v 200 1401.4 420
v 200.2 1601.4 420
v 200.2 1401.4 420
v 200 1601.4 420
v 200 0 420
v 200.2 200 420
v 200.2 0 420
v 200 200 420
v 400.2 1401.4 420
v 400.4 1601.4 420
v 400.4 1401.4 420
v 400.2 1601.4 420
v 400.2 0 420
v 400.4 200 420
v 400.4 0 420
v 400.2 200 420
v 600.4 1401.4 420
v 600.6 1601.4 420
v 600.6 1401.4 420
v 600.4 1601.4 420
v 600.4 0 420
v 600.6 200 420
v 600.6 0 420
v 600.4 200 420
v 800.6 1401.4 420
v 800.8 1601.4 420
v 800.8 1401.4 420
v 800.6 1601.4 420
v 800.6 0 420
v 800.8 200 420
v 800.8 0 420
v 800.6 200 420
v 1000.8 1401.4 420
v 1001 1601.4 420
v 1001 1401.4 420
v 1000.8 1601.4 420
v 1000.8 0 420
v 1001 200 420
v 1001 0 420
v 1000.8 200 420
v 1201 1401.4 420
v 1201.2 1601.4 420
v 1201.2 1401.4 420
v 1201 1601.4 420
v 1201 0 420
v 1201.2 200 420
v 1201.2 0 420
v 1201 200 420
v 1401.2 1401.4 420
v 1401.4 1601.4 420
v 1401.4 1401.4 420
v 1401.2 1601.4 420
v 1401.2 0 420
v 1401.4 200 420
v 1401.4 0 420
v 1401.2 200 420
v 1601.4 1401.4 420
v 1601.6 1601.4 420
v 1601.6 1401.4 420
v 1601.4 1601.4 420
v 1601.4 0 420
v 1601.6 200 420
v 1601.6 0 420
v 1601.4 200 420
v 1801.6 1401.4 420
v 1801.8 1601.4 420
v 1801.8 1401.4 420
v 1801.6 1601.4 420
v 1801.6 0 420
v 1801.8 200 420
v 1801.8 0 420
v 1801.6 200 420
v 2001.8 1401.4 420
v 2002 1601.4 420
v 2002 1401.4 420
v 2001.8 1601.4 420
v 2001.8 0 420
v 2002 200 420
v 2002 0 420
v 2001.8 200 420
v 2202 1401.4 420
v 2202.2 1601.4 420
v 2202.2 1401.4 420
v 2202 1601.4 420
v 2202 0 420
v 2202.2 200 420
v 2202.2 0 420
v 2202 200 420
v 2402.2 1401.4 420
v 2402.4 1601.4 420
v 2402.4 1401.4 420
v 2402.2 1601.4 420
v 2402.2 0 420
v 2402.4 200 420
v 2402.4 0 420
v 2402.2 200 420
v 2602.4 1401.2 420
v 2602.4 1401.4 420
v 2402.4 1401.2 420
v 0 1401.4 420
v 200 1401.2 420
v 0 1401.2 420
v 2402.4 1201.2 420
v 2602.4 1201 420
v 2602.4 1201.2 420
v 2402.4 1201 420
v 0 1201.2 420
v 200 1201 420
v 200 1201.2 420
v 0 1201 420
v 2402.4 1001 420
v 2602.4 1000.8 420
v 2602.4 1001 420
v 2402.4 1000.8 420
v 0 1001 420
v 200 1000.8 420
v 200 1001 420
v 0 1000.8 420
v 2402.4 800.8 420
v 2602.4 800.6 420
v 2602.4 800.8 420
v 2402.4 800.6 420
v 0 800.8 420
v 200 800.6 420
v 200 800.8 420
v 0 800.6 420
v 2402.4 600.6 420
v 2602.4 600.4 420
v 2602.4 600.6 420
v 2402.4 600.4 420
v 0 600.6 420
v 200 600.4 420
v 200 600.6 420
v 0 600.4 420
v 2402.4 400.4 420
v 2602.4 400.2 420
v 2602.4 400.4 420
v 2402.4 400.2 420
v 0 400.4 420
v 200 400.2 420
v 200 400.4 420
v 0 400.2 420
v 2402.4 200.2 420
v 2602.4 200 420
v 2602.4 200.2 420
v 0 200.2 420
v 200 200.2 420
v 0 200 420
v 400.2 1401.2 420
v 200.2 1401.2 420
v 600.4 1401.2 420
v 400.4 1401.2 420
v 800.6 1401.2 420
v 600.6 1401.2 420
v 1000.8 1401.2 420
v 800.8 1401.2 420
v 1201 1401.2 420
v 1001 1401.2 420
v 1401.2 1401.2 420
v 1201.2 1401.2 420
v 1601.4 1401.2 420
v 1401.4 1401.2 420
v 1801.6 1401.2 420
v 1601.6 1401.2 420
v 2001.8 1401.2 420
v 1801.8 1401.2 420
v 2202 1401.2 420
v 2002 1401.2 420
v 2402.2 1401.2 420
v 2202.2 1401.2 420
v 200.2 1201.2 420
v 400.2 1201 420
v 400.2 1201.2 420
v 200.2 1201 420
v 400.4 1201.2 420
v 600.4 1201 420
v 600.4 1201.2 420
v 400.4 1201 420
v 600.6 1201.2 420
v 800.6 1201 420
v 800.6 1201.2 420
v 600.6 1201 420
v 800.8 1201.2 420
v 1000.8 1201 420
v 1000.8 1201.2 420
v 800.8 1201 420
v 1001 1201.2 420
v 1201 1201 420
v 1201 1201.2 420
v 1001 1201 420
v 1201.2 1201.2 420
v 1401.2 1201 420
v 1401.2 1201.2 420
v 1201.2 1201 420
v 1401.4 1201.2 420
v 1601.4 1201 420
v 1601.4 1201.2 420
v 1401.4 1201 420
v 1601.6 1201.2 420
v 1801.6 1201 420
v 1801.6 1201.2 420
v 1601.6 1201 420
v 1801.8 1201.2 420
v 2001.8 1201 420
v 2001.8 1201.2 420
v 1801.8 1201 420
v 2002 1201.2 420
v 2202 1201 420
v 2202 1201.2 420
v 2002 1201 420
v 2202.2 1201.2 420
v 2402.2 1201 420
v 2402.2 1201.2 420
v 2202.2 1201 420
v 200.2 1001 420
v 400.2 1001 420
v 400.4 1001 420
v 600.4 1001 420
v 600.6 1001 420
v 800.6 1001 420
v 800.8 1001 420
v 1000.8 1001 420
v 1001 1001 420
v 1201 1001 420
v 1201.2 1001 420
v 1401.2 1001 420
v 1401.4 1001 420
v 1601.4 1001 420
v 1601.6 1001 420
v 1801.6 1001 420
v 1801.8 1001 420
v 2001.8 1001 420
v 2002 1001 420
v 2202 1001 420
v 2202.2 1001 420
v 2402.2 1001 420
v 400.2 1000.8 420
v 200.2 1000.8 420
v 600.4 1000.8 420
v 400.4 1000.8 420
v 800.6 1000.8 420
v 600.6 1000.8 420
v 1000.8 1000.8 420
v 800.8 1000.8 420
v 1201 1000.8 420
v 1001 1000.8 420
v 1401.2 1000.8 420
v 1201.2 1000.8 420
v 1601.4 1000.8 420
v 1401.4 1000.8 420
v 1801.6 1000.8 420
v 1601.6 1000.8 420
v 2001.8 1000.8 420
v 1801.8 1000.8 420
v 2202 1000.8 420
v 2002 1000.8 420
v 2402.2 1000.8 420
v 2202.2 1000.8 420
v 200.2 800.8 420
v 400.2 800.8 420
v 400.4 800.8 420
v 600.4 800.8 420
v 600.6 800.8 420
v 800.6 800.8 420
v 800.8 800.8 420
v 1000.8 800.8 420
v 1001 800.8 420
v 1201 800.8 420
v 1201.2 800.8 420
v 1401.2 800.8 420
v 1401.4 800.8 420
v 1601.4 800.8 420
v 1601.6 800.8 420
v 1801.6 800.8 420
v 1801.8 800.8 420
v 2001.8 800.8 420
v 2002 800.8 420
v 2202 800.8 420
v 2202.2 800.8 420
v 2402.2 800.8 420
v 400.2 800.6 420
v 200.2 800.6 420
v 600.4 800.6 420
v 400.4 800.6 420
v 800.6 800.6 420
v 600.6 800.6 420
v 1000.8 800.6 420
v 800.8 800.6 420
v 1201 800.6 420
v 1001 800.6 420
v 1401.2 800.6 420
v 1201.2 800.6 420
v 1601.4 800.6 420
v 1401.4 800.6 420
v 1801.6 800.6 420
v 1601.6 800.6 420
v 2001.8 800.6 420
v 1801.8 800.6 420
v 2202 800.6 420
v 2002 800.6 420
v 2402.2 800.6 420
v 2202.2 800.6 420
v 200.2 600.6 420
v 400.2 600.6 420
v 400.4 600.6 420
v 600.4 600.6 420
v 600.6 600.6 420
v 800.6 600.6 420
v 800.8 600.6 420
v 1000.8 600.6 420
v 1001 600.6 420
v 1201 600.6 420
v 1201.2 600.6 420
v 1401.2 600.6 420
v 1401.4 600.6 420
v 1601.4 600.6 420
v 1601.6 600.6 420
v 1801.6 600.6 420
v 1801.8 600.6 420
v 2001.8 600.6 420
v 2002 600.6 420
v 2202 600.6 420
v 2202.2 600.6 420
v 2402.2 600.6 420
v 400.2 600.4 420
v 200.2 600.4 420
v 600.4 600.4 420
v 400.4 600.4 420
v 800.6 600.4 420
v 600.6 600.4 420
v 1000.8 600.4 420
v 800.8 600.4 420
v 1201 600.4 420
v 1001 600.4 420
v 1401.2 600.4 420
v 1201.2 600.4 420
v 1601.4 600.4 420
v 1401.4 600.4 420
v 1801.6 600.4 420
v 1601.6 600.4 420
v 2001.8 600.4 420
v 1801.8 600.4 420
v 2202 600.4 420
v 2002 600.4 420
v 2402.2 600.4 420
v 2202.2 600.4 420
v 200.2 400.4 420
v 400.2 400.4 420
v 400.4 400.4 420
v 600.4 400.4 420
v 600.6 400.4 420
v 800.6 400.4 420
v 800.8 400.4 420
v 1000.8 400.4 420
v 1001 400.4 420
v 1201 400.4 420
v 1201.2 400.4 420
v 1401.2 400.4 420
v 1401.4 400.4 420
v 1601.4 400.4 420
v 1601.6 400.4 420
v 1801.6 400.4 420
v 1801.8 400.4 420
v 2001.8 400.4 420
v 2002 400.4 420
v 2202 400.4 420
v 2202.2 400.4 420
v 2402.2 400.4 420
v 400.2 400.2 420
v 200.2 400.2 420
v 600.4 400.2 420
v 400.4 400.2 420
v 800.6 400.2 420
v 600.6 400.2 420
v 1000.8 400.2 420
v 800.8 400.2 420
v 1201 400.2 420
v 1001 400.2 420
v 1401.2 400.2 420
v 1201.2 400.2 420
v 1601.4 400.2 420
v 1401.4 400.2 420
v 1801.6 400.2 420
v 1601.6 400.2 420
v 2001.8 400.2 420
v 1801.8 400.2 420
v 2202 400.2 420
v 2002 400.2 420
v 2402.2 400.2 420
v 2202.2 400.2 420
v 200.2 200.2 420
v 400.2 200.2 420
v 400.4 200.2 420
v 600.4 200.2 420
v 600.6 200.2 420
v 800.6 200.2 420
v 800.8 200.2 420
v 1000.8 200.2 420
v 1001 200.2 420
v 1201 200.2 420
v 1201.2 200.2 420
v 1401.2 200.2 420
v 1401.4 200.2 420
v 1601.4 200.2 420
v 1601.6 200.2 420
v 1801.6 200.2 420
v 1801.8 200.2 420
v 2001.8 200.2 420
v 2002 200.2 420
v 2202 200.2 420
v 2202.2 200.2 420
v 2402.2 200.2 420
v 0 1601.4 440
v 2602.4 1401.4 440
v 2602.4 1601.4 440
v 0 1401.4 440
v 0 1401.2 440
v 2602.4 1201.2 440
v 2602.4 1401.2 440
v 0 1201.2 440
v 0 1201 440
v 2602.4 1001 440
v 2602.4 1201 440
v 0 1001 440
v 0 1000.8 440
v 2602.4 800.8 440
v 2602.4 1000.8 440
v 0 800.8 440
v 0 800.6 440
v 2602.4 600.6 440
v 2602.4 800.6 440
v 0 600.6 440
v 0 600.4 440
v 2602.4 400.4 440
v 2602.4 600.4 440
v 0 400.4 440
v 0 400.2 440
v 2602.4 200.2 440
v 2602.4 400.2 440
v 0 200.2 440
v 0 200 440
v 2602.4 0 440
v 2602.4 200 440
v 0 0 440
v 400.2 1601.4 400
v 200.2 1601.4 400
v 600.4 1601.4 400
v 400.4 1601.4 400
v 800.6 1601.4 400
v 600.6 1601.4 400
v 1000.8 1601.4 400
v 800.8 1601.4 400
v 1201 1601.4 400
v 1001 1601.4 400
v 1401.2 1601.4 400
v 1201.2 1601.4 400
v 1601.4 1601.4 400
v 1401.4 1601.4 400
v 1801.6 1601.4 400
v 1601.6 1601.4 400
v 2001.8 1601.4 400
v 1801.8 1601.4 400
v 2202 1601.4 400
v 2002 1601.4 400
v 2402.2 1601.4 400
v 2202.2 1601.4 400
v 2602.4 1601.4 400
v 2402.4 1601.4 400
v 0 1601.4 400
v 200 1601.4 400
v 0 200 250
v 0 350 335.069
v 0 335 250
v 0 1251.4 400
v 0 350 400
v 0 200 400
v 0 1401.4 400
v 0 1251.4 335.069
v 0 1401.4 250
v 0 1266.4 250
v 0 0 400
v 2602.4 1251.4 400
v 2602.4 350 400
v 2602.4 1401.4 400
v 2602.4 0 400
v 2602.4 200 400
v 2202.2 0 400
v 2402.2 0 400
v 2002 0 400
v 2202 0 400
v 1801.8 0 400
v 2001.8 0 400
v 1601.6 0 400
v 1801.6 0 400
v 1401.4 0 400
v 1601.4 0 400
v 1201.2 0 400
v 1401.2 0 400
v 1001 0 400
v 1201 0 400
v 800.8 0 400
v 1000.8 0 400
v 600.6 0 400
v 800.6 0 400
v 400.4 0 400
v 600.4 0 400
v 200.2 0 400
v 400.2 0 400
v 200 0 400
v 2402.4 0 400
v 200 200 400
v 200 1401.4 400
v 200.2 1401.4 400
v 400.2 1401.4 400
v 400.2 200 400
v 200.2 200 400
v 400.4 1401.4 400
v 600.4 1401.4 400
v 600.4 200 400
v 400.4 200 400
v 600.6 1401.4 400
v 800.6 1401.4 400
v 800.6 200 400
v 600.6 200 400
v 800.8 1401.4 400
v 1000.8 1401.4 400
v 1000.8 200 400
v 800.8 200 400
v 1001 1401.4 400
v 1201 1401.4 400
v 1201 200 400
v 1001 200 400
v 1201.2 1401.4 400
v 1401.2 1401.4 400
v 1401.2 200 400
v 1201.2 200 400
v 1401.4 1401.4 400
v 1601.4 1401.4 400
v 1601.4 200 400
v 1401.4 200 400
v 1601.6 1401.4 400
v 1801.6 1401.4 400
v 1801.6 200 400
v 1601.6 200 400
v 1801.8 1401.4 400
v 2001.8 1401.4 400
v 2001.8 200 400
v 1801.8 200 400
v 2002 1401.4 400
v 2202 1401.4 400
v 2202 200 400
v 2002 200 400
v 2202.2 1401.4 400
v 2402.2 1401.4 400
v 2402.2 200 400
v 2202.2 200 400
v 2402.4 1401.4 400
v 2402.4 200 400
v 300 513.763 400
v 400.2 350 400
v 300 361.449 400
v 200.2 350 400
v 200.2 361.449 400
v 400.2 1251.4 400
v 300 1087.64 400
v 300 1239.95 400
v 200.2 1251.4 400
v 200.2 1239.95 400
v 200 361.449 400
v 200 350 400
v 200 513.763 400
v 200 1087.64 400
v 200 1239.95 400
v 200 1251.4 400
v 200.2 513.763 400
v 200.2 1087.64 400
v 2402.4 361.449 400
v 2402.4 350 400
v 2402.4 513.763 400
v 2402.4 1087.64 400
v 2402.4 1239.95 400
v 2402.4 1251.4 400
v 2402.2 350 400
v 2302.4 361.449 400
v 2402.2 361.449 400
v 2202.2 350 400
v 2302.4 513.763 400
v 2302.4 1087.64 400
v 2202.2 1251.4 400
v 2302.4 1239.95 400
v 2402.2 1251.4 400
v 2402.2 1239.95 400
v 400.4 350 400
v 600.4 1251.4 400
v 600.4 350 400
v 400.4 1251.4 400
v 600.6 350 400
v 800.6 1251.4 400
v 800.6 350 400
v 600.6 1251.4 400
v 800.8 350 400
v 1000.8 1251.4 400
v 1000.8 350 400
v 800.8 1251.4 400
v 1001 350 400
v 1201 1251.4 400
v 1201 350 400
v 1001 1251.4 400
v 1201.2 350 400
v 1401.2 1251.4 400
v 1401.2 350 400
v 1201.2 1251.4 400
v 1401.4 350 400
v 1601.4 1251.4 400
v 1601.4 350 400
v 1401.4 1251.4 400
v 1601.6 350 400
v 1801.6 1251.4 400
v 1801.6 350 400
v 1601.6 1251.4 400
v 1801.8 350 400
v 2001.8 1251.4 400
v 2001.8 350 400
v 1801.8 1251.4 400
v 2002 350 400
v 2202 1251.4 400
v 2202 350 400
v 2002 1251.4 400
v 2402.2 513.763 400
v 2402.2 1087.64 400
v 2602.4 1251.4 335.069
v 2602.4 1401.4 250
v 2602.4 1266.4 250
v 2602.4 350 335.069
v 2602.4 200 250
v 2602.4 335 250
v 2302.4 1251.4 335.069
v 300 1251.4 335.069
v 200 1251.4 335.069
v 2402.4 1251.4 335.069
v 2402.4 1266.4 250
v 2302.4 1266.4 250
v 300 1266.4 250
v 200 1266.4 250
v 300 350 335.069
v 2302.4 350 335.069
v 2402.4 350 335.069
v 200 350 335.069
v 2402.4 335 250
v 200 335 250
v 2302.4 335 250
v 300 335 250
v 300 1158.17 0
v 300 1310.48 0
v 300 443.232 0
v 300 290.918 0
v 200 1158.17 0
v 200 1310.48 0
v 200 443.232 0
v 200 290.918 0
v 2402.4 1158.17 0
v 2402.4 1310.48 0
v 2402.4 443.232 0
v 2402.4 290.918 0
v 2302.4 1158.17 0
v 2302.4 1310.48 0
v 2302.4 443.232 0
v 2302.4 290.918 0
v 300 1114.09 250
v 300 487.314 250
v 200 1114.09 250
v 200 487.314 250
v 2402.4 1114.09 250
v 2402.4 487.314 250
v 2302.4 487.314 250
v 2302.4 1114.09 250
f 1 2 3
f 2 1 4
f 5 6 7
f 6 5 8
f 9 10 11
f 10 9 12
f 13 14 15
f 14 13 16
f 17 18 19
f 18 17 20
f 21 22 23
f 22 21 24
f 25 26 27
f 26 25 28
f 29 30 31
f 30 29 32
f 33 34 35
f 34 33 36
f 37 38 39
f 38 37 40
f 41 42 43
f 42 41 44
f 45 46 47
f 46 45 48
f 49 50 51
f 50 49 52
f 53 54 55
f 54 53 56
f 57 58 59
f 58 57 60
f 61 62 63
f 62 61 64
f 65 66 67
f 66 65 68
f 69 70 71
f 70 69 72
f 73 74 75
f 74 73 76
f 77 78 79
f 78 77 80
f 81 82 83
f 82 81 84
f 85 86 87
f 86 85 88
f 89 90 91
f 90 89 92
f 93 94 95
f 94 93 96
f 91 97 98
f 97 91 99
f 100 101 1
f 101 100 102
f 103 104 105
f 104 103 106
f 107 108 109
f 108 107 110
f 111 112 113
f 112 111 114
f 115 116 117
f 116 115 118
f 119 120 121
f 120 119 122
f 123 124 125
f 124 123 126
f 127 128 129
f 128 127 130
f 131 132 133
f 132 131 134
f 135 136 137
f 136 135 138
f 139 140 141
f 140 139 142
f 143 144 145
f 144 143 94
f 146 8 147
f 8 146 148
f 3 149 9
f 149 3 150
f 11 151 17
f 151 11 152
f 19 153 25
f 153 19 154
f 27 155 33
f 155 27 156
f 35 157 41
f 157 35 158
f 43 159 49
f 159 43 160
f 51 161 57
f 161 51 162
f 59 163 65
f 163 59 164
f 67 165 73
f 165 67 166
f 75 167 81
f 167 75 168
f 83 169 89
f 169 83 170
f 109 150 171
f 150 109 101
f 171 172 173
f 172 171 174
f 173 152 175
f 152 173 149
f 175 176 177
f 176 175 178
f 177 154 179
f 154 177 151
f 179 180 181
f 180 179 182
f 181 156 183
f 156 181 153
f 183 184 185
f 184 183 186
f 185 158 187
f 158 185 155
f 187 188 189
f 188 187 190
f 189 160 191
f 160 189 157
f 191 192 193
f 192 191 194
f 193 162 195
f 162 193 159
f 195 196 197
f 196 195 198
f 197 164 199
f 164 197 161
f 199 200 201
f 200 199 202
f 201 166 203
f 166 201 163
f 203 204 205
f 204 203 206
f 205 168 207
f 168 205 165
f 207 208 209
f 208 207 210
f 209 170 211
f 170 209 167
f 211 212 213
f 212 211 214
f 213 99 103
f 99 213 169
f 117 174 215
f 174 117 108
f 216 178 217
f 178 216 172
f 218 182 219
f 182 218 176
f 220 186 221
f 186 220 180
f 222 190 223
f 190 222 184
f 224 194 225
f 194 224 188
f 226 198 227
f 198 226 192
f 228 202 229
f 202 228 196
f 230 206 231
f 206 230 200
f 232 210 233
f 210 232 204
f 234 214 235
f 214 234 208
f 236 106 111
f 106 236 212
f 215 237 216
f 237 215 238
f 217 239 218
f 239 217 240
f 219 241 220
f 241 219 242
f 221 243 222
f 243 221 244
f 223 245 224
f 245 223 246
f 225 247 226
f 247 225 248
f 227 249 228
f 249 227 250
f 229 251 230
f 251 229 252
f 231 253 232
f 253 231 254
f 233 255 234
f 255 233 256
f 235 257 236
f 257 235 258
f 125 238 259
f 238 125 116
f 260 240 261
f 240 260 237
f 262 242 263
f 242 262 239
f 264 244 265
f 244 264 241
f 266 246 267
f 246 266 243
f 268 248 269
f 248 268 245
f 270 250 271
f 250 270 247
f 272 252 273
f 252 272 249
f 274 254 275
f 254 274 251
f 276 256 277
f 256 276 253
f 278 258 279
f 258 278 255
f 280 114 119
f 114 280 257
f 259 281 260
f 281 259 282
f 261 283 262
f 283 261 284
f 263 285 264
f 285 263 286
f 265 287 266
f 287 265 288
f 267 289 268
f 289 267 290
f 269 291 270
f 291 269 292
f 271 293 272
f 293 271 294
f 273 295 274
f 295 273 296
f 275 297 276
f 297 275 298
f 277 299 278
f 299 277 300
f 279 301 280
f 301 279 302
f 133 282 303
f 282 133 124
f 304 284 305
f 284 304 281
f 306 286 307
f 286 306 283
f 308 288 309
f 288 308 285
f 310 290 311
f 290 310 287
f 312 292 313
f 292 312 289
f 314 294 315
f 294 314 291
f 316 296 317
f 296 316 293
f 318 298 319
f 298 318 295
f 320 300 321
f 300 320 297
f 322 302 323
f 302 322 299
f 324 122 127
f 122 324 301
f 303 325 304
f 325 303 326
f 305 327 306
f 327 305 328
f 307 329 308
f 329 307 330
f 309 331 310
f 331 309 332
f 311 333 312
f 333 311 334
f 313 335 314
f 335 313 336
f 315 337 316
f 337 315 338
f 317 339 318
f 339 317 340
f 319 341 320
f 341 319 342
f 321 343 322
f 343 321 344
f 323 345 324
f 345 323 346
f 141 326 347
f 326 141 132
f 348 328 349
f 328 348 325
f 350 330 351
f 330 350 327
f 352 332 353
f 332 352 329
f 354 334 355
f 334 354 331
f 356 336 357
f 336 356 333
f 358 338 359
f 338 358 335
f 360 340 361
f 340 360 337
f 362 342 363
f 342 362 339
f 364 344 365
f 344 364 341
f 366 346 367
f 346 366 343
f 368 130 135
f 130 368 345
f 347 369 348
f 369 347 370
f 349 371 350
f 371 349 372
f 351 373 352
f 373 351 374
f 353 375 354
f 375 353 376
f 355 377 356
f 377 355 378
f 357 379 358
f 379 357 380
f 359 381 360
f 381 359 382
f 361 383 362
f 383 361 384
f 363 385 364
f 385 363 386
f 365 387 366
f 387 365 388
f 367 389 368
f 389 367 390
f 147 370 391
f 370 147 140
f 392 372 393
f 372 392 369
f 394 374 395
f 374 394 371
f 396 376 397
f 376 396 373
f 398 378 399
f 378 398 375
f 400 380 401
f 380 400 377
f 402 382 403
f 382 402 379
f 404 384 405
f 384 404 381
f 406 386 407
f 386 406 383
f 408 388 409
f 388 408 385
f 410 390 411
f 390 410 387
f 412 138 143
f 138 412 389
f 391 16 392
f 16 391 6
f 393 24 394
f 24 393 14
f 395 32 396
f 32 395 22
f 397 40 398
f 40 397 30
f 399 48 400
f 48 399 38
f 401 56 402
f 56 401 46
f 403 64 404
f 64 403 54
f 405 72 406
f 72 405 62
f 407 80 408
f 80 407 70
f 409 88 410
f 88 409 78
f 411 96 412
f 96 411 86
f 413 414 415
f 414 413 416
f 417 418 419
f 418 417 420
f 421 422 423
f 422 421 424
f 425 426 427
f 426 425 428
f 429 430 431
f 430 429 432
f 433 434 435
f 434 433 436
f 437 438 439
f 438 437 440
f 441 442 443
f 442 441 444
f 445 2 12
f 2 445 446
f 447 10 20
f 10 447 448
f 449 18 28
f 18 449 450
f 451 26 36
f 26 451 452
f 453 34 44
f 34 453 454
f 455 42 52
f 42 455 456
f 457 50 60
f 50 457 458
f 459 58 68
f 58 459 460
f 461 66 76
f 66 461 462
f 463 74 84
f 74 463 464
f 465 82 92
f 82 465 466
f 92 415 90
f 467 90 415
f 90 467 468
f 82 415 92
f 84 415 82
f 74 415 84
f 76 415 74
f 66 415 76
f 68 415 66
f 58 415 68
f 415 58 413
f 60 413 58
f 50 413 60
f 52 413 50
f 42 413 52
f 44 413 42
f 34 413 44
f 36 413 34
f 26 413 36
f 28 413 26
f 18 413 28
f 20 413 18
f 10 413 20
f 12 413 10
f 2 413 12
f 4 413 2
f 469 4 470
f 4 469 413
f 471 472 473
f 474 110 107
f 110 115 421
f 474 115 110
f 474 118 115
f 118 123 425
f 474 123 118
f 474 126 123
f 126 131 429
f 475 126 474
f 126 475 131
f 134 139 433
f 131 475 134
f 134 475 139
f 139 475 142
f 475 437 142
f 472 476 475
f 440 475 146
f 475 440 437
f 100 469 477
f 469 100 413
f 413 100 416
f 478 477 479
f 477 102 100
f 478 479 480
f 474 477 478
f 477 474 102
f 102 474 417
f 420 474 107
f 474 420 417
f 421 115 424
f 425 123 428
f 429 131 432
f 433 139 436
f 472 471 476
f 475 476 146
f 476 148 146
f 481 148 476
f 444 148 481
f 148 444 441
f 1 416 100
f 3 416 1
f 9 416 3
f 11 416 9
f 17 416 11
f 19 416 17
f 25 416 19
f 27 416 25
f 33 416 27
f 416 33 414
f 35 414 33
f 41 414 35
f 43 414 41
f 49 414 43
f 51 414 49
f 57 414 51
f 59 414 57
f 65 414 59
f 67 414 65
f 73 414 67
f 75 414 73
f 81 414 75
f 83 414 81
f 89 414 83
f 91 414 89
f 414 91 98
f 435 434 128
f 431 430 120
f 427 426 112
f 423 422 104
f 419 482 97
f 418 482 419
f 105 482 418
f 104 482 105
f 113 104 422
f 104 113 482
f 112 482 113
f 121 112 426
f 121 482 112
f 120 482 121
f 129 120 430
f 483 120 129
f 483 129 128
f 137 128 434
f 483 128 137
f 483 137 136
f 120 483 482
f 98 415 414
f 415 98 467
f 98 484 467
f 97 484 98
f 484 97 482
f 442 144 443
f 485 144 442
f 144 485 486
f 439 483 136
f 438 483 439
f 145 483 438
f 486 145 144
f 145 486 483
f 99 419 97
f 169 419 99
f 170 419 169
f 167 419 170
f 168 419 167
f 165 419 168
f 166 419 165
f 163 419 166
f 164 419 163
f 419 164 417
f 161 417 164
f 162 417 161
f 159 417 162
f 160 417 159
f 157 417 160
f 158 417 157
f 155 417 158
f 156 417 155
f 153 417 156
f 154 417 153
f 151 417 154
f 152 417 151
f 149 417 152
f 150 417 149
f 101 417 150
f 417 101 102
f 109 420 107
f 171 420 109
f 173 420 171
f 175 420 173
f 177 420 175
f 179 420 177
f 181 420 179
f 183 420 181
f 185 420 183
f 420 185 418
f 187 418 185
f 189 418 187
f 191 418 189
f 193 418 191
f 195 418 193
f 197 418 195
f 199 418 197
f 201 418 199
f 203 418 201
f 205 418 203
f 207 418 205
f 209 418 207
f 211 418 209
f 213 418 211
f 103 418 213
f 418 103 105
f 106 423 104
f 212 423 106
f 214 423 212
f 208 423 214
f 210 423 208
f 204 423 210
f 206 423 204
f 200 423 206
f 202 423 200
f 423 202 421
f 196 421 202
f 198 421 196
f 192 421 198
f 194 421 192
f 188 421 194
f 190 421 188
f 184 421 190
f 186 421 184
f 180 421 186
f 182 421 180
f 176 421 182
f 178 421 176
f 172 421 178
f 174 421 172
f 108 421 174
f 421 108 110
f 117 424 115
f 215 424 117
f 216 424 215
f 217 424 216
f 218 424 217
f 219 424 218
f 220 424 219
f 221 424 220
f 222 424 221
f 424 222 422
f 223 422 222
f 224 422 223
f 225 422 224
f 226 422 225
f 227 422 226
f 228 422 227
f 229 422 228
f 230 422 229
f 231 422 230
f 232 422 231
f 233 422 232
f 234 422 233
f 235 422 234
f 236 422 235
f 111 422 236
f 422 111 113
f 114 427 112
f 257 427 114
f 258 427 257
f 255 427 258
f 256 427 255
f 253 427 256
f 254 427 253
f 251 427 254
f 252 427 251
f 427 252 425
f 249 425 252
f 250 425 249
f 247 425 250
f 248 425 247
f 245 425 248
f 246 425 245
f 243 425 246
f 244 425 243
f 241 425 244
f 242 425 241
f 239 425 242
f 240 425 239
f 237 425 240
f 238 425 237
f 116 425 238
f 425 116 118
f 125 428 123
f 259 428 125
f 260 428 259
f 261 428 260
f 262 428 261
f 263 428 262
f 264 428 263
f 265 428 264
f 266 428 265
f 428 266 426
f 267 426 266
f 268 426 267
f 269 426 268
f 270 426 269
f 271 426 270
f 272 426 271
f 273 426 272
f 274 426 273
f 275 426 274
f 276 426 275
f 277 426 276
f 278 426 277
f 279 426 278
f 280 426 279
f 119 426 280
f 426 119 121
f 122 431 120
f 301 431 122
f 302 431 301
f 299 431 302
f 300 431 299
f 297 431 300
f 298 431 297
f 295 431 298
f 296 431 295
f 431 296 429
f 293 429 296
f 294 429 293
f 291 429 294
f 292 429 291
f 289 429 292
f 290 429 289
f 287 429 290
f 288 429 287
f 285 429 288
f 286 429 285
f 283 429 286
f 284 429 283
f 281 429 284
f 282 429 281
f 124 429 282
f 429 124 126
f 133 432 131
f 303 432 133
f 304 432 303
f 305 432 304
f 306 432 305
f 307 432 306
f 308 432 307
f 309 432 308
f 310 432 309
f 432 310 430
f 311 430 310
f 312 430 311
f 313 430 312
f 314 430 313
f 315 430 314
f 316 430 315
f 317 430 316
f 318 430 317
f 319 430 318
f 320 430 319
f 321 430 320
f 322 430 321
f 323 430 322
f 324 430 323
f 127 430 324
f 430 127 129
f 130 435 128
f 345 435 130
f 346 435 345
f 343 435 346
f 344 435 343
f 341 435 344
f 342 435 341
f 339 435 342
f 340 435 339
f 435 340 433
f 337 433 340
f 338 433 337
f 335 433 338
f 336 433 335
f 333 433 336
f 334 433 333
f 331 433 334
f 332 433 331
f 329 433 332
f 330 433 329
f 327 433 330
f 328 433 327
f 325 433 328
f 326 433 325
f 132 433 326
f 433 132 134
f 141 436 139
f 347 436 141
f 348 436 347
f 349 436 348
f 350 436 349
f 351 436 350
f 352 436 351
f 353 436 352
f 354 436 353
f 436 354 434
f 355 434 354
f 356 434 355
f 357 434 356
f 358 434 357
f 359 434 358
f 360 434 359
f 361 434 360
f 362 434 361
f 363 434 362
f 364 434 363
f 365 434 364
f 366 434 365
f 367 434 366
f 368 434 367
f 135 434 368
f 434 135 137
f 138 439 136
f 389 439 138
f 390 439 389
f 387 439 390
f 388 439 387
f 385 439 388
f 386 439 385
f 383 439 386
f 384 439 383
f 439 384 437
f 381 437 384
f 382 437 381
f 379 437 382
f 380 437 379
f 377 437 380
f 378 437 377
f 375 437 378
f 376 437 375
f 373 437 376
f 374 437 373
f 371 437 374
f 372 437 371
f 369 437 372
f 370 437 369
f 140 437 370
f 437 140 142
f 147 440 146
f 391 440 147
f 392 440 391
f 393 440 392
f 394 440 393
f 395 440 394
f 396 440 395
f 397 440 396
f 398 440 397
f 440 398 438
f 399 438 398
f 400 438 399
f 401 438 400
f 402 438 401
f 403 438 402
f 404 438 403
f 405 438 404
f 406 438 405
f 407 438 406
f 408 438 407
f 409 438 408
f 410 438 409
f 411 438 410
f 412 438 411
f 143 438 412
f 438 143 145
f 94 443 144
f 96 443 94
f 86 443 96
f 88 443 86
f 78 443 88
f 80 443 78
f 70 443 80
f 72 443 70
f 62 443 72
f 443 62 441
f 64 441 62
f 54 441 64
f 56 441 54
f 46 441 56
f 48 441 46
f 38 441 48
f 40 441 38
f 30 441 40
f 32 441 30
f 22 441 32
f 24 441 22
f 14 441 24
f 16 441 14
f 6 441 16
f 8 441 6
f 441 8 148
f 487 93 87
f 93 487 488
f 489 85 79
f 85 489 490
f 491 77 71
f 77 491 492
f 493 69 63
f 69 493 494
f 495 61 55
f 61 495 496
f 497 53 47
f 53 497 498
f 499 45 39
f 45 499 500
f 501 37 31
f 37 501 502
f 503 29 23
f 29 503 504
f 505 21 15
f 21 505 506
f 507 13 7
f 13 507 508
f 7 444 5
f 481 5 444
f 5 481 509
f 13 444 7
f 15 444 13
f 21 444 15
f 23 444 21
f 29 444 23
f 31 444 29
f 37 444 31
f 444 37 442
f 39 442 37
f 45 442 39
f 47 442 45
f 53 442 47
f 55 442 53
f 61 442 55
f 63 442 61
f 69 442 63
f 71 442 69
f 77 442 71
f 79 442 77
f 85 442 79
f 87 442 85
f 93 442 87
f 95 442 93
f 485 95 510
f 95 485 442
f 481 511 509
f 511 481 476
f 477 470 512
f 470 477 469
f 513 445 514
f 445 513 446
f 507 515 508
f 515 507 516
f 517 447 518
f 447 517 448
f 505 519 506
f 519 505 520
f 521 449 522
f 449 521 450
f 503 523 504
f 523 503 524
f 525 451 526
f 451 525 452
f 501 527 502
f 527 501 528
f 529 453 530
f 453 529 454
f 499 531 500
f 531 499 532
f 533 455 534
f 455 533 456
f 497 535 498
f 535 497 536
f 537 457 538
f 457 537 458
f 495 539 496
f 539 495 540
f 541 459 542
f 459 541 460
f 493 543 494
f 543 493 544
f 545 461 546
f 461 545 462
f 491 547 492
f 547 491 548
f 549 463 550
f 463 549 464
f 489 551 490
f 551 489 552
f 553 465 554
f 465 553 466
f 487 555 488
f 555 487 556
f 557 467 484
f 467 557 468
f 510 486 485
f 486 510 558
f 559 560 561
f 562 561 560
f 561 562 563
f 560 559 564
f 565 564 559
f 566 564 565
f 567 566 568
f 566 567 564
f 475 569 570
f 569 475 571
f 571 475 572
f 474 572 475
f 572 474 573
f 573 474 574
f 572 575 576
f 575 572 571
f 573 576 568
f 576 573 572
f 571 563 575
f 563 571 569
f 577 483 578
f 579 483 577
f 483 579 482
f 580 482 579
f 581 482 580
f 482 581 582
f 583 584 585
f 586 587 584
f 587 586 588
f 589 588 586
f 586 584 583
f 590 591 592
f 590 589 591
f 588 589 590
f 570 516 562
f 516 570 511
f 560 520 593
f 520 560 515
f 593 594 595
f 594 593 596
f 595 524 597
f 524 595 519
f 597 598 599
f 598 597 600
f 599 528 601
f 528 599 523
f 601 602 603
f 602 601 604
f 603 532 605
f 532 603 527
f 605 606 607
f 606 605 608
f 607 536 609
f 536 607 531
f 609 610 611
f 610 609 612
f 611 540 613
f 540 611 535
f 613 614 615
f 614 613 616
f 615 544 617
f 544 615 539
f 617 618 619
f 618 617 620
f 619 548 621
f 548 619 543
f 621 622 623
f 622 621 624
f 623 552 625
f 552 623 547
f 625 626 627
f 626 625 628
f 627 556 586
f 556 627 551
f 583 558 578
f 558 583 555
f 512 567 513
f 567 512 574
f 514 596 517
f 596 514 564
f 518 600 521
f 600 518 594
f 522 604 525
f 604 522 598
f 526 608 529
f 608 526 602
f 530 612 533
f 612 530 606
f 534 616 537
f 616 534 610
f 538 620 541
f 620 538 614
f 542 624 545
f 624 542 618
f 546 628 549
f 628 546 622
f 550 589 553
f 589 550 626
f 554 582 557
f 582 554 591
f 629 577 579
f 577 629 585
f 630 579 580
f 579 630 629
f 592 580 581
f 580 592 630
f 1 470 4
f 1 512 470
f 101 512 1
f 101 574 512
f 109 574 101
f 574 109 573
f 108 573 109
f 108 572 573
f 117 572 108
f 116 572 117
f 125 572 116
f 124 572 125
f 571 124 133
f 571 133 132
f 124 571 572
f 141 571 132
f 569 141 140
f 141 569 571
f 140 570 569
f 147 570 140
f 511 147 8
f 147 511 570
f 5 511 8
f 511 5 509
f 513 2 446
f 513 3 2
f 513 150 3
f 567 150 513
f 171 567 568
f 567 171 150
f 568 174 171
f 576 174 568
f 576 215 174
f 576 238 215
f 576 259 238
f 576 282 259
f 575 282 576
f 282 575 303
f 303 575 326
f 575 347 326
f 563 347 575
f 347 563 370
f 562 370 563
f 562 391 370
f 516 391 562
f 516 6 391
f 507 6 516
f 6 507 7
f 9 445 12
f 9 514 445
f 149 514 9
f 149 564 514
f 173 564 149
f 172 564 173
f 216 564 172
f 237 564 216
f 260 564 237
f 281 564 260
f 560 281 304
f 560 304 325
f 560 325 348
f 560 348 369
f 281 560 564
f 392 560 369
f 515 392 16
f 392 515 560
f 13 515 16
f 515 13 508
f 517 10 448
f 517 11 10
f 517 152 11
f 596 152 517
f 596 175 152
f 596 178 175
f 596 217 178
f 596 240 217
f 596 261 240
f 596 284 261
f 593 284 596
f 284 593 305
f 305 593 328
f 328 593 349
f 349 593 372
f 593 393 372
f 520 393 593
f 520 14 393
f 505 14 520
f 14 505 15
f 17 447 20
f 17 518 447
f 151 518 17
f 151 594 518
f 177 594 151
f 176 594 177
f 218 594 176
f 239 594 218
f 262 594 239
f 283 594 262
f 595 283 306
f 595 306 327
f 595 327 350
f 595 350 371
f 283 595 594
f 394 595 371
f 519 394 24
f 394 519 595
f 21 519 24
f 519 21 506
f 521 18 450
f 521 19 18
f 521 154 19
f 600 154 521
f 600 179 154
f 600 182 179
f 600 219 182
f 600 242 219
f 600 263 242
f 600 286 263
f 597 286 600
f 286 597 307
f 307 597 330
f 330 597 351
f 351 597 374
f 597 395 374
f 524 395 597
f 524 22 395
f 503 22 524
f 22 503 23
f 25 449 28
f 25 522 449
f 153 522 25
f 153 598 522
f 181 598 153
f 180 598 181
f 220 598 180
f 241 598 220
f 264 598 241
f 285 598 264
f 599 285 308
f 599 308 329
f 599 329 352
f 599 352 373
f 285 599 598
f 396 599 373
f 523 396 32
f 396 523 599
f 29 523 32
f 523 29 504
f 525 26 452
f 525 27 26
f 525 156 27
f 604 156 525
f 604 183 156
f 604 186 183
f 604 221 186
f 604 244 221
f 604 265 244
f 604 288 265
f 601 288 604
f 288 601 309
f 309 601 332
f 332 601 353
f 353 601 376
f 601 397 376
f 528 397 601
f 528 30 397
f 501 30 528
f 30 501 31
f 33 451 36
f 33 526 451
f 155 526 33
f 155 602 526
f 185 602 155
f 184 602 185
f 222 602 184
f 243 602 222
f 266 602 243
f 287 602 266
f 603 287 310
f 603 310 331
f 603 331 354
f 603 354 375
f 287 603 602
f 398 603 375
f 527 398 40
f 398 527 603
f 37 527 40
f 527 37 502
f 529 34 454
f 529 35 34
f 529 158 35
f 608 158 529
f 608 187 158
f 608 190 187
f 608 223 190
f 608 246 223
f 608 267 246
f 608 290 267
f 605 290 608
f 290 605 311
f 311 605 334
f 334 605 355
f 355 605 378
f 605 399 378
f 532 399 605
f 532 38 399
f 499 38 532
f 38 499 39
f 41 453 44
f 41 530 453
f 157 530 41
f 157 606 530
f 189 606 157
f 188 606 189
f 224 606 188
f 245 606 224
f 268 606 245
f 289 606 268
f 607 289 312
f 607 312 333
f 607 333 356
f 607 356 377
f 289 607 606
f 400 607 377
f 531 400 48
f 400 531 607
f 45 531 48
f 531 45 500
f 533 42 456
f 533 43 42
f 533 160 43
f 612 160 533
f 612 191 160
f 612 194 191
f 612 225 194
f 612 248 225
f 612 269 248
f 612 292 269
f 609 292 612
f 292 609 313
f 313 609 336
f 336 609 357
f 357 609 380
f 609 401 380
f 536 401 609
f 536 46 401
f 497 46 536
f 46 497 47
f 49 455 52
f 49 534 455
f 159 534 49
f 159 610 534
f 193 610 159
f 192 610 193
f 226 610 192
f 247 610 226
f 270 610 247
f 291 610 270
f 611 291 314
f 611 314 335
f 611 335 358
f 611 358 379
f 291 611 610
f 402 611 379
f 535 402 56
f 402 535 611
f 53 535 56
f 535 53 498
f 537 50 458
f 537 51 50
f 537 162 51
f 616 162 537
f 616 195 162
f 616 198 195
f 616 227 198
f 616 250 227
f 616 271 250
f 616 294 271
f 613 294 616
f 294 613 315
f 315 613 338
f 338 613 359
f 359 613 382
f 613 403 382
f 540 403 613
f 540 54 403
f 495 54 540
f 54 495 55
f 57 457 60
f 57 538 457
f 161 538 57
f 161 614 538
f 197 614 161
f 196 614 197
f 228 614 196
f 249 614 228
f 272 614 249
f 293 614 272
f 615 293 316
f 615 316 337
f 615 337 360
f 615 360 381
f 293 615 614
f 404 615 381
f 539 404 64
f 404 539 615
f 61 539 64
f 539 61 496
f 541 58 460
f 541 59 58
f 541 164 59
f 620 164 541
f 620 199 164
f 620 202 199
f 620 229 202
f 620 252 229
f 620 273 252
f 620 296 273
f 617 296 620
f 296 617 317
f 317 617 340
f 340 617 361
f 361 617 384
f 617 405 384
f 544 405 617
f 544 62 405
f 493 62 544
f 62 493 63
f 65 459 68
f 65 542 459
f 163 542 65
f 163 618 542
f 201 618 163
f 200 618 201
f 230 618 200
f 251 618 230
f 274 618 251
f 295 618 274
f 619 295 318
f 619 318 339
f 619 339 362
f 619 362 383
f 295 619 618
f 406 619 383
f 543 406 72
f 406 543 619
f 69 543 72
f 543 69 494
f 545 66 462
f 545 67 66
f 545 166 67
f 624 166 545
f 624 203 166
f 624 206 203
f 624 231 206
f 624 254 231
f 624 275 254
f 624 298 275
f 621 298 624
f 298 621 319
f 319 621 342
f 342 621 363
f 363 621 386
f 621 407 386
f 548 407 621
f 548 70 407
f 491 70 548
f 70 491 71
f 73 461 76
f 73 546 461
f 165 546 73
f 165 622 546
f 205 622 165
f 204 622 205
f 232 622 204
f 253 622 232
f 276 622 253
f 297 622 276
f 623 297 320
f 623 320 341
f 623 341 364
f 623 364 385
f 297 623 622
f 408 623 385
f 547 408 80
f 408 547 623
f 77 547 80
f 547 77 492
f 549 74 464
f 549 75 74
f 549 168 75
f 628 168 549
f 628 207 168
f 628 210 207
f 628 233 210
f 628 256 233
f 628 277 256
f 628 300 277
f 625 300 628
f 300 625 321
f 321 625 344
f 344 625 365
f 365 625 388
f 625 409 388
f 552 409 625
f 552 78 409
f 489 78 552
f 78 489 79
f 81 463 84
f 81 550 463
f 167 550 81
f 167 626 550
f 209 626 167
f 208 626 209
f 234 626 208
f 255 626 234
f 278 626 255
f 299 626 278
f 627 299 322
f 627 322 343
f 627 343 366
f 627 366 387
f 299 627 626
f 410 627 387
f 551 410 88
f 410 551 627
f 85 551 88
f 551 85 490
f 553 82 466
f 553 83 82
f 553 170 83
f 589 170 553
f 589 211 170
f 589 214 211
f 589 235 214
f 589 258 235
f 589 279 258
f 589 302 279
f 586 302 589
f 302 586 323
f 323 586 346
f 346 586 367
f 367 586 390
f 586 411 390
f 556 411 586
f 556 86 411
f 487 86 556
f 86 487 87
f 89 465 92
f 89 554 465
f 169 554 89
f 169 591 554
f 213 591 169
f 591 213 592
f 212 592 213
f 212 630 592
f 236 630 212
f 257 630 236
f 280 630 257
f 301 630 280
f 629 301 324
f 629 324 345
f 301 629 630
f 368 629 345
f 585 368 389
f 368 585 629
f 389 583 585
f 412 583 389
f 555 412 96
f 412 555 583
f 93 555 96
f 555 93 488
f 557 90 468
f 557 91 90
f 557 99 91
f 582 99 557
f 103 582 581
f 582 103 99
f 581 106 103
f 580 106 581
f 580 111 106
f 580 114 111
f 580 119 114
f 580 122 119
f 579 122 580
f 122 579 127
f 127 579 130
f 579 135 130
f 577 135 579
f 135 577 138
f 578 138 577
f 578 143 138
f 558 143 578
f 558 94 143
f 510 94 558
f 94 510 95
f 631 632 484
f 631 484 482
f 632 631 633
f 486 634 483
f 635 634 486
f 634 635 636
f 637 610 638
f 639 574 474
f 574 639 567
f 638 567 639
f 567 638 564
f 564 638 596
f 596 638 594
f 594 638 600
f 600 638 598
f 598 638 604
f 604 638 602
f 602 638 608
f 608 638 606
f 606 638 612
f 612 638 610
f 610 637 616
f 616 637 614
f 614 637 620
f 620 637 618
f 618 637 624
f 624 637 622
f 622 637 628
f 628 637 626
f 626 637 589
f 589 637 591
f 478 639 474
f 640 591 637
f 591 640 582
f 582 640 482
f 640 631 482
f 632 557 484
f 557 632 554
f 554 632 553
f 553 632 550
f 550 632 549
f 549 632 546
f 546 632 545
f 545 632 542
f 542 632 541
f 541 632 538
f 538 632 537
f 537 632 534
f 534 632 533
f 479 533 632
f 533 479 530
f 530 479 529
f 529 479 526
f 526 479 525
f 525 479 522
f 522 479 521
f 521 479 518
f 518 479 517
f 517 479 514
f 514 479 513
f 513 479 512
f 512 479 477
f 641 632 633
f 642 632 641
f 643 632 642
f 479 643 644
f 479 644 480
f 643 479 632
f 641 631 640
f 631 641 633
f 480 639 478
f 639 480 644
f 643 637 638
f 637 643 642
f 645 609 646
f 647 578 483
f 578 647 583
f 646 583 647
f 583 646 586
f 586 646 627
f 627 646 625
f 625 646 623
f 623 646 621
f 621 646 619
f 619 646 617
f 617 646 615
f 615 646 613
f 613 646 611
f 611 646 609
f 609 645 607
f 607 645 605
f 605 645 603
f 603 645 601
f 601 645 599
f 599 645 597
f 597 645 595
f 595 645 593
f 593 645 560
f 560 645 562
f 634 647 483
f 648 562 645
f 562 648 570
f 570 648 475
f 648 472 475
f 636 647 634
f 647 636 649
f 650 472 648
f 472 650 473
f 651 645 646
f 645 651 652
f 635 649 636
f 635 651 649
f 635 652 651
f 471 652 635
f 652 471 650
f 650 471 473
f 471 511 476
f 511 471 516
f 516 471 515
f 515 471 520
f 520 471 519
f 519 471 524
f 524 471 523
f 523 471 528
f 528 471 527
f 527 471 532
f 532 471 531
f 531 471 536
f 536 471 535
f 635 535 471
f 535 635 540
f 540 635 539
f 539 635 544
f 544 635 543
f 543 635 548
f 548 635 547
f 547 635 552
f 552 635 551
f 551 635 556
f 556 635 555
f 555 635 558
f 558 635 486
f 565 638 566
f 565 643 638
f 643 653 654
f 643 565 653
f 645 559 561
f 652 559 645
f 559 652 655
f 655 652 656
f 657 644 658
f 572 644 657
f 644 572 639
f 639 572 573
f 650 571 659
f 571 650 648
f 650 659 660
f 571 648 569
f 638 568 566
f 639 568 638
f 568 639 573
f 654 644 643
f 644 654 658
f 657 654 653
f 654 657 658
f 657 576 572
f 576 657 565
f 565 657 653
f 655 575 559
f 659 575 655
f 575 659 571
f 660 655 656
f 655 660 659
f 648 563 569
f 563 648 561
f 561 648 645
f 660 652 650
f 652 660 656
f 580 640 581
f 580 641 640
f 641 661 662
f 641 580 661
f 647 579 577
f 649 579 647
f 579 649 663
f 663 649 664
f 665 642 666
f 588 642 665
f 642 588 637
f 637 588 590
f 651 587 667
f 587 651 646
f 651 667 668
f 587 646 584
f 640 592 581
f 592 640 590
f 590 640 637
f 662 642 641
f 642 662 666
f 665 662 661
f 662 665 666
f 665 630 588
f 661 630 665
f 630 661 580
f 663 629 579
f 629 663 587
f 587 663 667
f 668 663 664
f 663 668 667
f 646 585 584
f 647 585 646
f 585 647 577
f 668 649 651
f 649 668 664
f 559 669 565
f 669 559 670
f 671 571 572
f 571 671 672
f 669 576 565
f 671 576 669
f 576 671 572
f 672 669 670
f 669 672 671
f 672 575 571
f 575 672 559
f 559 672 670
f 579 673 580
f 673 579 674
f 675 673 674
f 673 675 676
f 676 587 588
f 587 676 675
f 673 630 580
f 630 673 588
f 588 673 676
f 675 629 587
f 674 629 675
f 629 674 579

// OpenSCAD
// Generated by Parametrix
ca_cabane_plancher_facePlancherTop_0 = [ [ 0.0000, 0.0000 ],[ 2602.4000, 0.0000 ],[ 2602.4000, 200.0000 ],[ 0.0000, 200.0000 ],[ 0.0000, 0.0000 ] ];
cb_cabane_plancher_facePlancherTop_0 = [  0, 1, 2, 3, 4 ];
ca_cabane_plancher_facePlancherTop_1 = [ [ 0.0000, 200.2000 ],[ 2602.4000, 200.2000 ],[ 2602.4000, 400.2000 ],[ 0.0000, 400.2000 ],[ 0.0000, 200.2000 ] ];
cb_cabane_plancher_facePlancherTop_1 = [  5, 6, 7, 8, 9 ];
ca_cabane_plancher_facePlancherTop_2 = [ [ 0.0000, 400.4000 ],[ 2602.4000, 400.4000 ],[ 2602.4000, 600.4000 ],[ 0.0000, 600.4000 ],[ 0.0000, 400.4000 ] ];
cb_cabane_plancher_facePlancherTop_2 = [  10, 11, 12, 13, 14 ];
ca_cabane_plancher_facePlancherTop_3 = [ [ 0.0000, 600.6000 ],[ 2602.4000, 600.6000 ],[ 2602.4000, 800.6000 ],[ 0.0000, 800.6000 ],[ 0.0000, 600.6000 ] ];
cb_cabane_plancher_facePlancherTop_3 = [  15, 16, 17, 18, 19 ];
ca_cabane_plancher_facePlancherTop_4 = [ [ 0.0000, 800.8000 ],[ 2602.4000, 800.8000 ],[ 2602.4000, 1000.8000 ],[ 0.0000, 1000.8000 ],[ 0.0000, 800.8000 ] ];
cb_cabane_plancher_facePlancherTop_4 = [  20, 21, 22, 23, 24 ];
ca_cabane_plancher_facePlancherTop_5 = [ [ 0.0000, 1001.0000 ],[ 2602.4000, 1001.0000 ],[ 2602.4000, 1201.0000 ],[ 0.0000, 1201.0000 ],[ 0.0000, 1001.0000 ] ];
cb_cabane_plancher_facePlancherTop_5 = [  25, 26, 27, 28, 29 ];
ca_cabane_plancher_facePlancherTop_6 = [ [ 0.0000, 1201.2000 ],[ 2602.4000, 1201.2000 ],[ 2602.4000, 1401.2000 ],[ 0.0000, 1401.2000 ],[ 0.0000, 1201.2000 ] ];
cb_cabane_plancher_facePlancherTop_6 = [  30, 31, 32, 33, 34 ];
ca_cabane_plancher_facePlancherTop_7 = [ [ 0.0000, 1401.4000 ],[ 2602.4000, 1401.4000 ],[ 2602.4000, 1601.4000 ],[ 0.0000, 1601.4000 ],[ 0.0000, 1401.4000 ] ];
cb_cabane_plancher_facePlancherTop_7 = [  35, 36, 37, 38, 39 ];
a_cabane_plancher_facePlancherTop = concat(ca_cabane_plancher_facePlancherTop_0, ca_cabane_plancher_facePlancherTop_1, ca_cabane_plancher_facePlancherTop_2, ca_cabane_plancher_facePlancherTop_3, ca_cabane_plancher_facePlancherTop_4, ca_cabane_plancher_facePlancherTop_5, ca_cabane_plancher_facePlancherTop_6, ca_cabane_plancher_facePlancherTop_7);
b_cabane_plancher_facePlancherTop = [cb_cabane_plancher_facePlancherTop_0, cb_cabane_plancher_facePlancherTop_1, cb_cabane_plancher_facePlancherTop_2, cb_cabane_plancher_facePlancherTop_3, cb_cabane_plancher_facePlancherTop_4, cb_cabane_plancher_facePlancherTop_5, cb_cabane_plancher_facePlancherTop_6, cb_cabane_plancher_facePlancherTop_7];
ca_cabane_plancher_facePlancherBottom_0 = [ [ 0.0000, 0.0000 ],[ 200.0000, 0.0000 ],[ 200.0000, 1601.4000 ],[ 0.0000, 1601.4000 ],[ 0.0000, 0.0000 ] ];
cb_cabane_plancher_facePlancherBottom_0 = [  0, 1, 2, 3, 4 ];
ca_cabane_plancher_facePlancherBottom_1 = [ [ 200.2000, 0.0000 ],[ 400.2000, 0.0000 ],[ 400.2000, 1601.4000 ],[ 200.2000, 1601.4000 ],[ 200.2000, 0.0000 ] ];
cb_cabane_plancher_facePlancherBottom_1 = [  5, 6, 7, 8, 9 ];
ca_cabane_plancher_facePlancherBottom_2 = [ [ 400.4000, 0.0000 ],[ 600.4000, 0.0000 ],[ 600.4000, 1601.4000 ],[ 400.4000, 1601.4000 ],[ 400.4000, 0.0000 ] ];
cb_cabane_plancher_facePlancherBottom_2 = [  10, 11, 12, 13, 14 ];
ca_cabane_plancher_facePlancherBottom_3 = [ [ 600.6000, 0.0000 ],[ 800.6000, 0.0000 ],[ 800.6000, 1601.4000 ],[ 600.6000, 1601.4000 ],[ 600.6000, 0.0000 ] ];
cb_cabane_plancher_facePlancherBottom_3 = [  15, 16, 17, 18, 19 ];
ca_cabane_plancher_facePlancherBottom_4 = [ [ 800.8000, 0.0000 ],[ 1000.8000, 0.0000 ],[ 1000.8000, 1601.4000 ],[ 800.8000, 1601.4000 ],[ 800.8000, 0.0000 ] ];
cb_cabane_plancher_facePlancherBottom_4 = [  20, 21, 22, 23, 24 ];
ca_cabane_plancher_facePlancherBottom_5 = [ [ 1001.0000, 0.0000 ],[ 1201.0000, 0.0000 ],[ 1201.0000, 1601.4000 ],[ 1001.0000, 1601.4000 ],[ 1001.0000, 0.0000 ] ];
cb_cabane_plancher_facePlancherBottom_5 = [  25, 26, 27, 28, 29 ];
ca_cabane_plancher_facePlancherBottom_6 = [ [ 1201.2000, 0.0000 ],[ 1401.2000, 0.0000 ],[ 1401.2000, 1601.4000 ],[ 1201.2000, 1601.4000 ],[ 1201.2000, 0.0000 ] ];
cb_cabane_plancher_facePlancherBottom_6 = [  30, 31, 32, 33, 34 ];
ca_cabane_plancher_facePlancherBottom_7 = [ [ 1401.4000, 0.0000 ],[ 1601.4000, 0.0000 ],[ 1601.4000, 1601.4000 ],[ 1401.4000, 1601.4000 ],[ 1401.4000, 0.0000 ] ];
cb_cabane_plancher_facePlancherBottom_7 = [  35, 36, 37, 38, 39 ];
ca_cabane_plancher_facePlancherBottom_8 = [ [ 1601.6000, 0.0000 ],[ 1801.6000, 0.0000 ],[ 1801.6000, 1601.4000 ],[ 1601.6000, 1601.4000 ],[ 1601.6000, 0.0000 ] ];
cb_cabane_plancher_facePlancherBottom_8 = [  40, 41, 42, 43, 44 ];
ca_cabane_plancher_facePlancherBottom_9 = [ [ 1801.8000, 0.0000 ],[ 2001.8000, 0.0000 ],[ 2001.8000, 1601.4000 ],[ 1801.8000, 1601.4000 ],[ 1801.8000, 0.0000 ] ];
cb_cabane_plancher_facePlancherBottom_9 = [  45, 46, 47, 48, 49 ];
ca_cabane_plancher_facePlancherBottom_10 = [ [ 2002.0000, 0.0000 ],[ 2202.0000, 0.0000 ],[ 2202.0000, 1601.4000 ],[ 2002.0000, 1601.4000 ],[ 2002.0000, 0.0000 ] ];
cb_cabane_plancher_facePlancherBottom_10 = [  50, 51, 52, 53, 54 ];
ca_cabane_plancher_facePlancherBottom_11 = [ [ 2202.2000, 0.0000 ],[ 2402.2000, 0.0000 ],[ 2402.2000, 1601.4000 ],[ 2202.2000, 1601.4000 ],[ 2202.2000, 0.0000 ] ];
cb_cabane_plancher_facePlancherBottom_11 = [  55, 56, 57, 58, 59 ];
ca_cabane_plancher_facePlancherBottom_12 = [ [ 2402.4000, 0.0000 ],[ 2602.4000, 0.0000 ],[ 2602.4000, 1601.4000 ],[ 2402.4000, 1601.4000 ],[ 2402.4000, 0.0000 ] ];
cb_cabane_plancher_facePlancherBottom_12 = [  60, 61, 62, 63, 64 ];
a_cabane_plancher_facePlancherBottom = concat(ca_cabane_plancher_facePlancherBottom_0, ca_cabane_plancher_facePlancherBottom_1, ca_cabane_plancher_facePlancherBottom_2, ca_cabane_plancher_facePlancherBottom_3, ca_cabane_plancher_facePlancherBottom_4, ca_cabane_plancher_facePlancherBottom_5, ca_cabane_plancher_facePlancherBottom_6, ca_cabane_plancher_facePlancherBottom_7, ca_cabane_plancher_facePlancherBottom_8, ca_cabane_plancher_facePlancherBottom_9, ca_cabane_plancher_facePlancherBottom_10, ca_cabane_plancher_facePlancherBottom_11, ca_cabane_plancher_facePlancherBottom_12);
b_cabane_plancher_facePlancherBottom = [cb_cabane_plancher_facePlancherBottom_0, cb_cabane_plancher_facePlancherBottom_1, cb_cabane_plancher_facePlancherBottom_2, cb_cabane_plancher_facePlancherBottom_3, cb_cabane_plancher_facePlancherBottom_4, cb_cabane_plancher_facePlancherBottom_5, cb_cabane_plancher_facePlancherBottom_6, cb_cabane_plancher_facePlancherBottom_7, cb_cabane_plancher_facePlancherBottom_8, cb_cabane_plancher_facePlancherBottom_9, cb_cabane_plancher_facePlancherBottom_10, cb_cabane_plancher_facePlancherBottom_11, cb_cabane_plancher_facePlancherBottom_12];
ca_cabane_plancher_faceBeam_0 = [ [ 200.0000, 400.0000 ],[ 350.0000, 400.0000 ],[ 350.0000, 335.0692 ],[ 335.0000, 250.0000 ],[ 200.0000, 250.0000 ],[ 200.0000, 400.0000 ] ];
cb_cabane_plancher_faceBeam_0 = [  0, 1, 2, 3, 4, 5 ];
ca_cabane_plancher_faceBeam_1 = [ [ 1401.4000, 400.0000 ],[ 1251.4000, 400.0000 ],[ 1251.4000, 335.0692 ],[ 1266.4000, 250.0000 ],[ 1401.4000, 250.0000 ],[ 1401.4000, 400.0000 ] ];
cb_cabane_plancher_faceBeam_1 = [  6, 7, 8, 9, 10, 11 ];
a_cabane_plancher_faceBeam = concat(ca_cabane_plancher_faceBeam_0, ca_cabane_plancher_faceBeam_1);
b_cabane_plancher_faceBeam = [cb_cabane_plancher_faceBeam_0, cb_cabane_plancher_faceBeam_1];
ca_cabane_plancher_faceLeg_0 = [ [ 513.7630, 400.0000 ],[ 361.4490, 400.0000 ],[ 290.9183, 0.0000 ],[ 443.2322, 0.0000 ],[ 513.7630, 400.0000 ] ];
cb_cabane_plancher_faceLeg_0 = [  0, 1, 2, 3, 4 ];
ca_cabane_plancher_faceLeg_1 = [ [ 1087.6370, 400.0000 ],[ 1239.9510, 400.0000 ],[ 1310.4817, 0.0000 ],[ 1158.1678, 0.0000 ],[ 1087.6370, 400.0000 ] ];
cb_cabane_plancher_faceLeg_1 = [  5, 6, 7, 8, 9 ];
a_cabane_plancher_faceLeg = concat(ca_cabane_plancher_faceLeg_0, ca_cabane_plancher_faceLeg_1);
b_cabane_plancher_faceLeg = [cb_cabane_plancher_faceLeg_0, cb_cabane_plancher_faceLeg_1];
ca_cabane_plancher_faceButtress_0 = [ [ 513.7630, 400.0000 ],[ 1087.6370, 400.0000 ],[ 1114.0860, 250.0000 ],[ 487.3140, 250.0000 ],[ 513.7630, 400.0000 ] ];
cb_cabane_plancher_faceButtress_0 = [  0, 1, 2, 3, 4 ];
a_cabane_plancher_faceButtress = concat(ca_cabane_plancher_faceButtress_0);
b_cabane_plancher_faceButtress = [cb_cabane_plancher_faceButtress_0];
ca_cabane_plancher_faceSide_0 = [ [ 200.0000, 0.0000 ],[ 300.0000, 0.0000 ],[ 300.0000, 400.0000 ],[ 200.0000, 400.0000 ],[ 200.0000, 0.0000 ] ];
cb_cabane_plancher_faceSide_0 = [  0, 1, 2, 3, 4 ];
ca_cabane_plancher_faceSide_1 = [ [ 2302.4000, 0.0000 ],[ 2402.4000, 0.0000 ],[ 2402.4000, 400.0000 ],[ 2302.4000, 400.0000 ],[ 2302.4000, 0.0000 ] ];
cb_cabane_plancher_faceSide_1 = [  5, 6, 7, 8, 9 ];
a_cabane_plancher_faceSide = concat(ca_cabane_plancher_faceSide_0, ca_cabane_plancher_faceSide_1);
b_cabane_plancher_faceSide = [cb_cabane_plancher_faceSide_0, cb_cabane_plancher_faceSide_1];

module subpax_cabane_plancher_plancherTop () {
	translate( [ 0, 0, 420 ])
		rotate( [ 0, 0, 0 ])
			   linear_extrude(height = 20) polygon(a_cabane_plancher_facePlancherTop, b_cabane_plancher_facePlancherTop);
}

module subpax_cabane_plancher_plancherBottom () {
	translate( [ 0, 0, 400 ])
		rotate( [ 0, 0, 0 ])
			   linear_extrude(height = 20) polygon(a_cabane_plancher_facePlancherBottom, b_cabane_plancher_facePlancherBottom);
}

module subpax_cabane_plancher_beam () {
	translate( [ 2602.4, 1601.4000000000003, 0 ])
		rotate( [ 90, 0, -90 ])
			   linear_extrude(height = 2602.4) polygon(a_cabane_plancher_faceBeam, b_cabane_plancher_faceBeam);
}

module subpax_cabane_plancher_leg1 () {
	translate( [ 300, 1601.4, 0 ])
		rotate( [ 90, 0, -90 ])
			   linear_extrude(height = 100) polygon(a_cabane_plancher_faceLeg, b_cabane_plancher_faceLeg);
}

module subpax_cabane_plancher_leg2 () {
	translate( [ 2402.4, 1601.4000000000003, 0 ])
		rotate( [ 90, 0, -90 ])
			   linear_extrude(height = 100) polygon(a_cabane_plancher_faceLeg, b_cabane_plancher_faceLeg);
}

module subpax_cabane_plancher_buttress1 () {
	translate( [ 300, 1601.4, 0 ])
		rotate( [ 90, 0, -90 ])
			   linear_extrude(height = 100) polygon(a_cabane_plancher_faceButtress, b_cabane_plancher_faceButtress);
}

module subpax_cabane_plancher_buttress2 () {
	translate( [ 2402.4, 1601.4000000000003, 0 ])
		rotate( [ 90, 0, -90 ])
			   linear_extrude(height = 100) polygon(a_cabane_plancher_faceButtress, b_cabane_plancher_faceButtress);
}

module pax_cabane_plancher () {
	union () {
		subpax_cabane_plancher_plancherTop();
subpax_cabane_plancher_plancherBottom();
subpax_cabane_plancher_beam();
subpax_cabane_plancher_leg1();
subpax_cabane_plancher_leg2();
subpax_cabane_plancher_buttress1();
subpax_cabane_plancher_buttress2();
	}
}

pax_cabane_plancher();
